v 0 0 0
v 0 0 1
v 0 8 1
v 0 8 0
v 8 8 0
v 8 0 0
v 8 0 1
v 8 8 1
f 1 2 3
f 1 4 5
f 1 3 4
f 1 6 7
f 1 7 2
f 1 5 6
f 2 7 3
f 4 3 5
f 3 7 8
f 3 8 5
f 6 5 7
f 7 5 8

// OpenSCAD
/* Warning, this is a very basic generator with a lot of approximation 
input data : [VQFN, NDC, 8x8x1.0mm, 56, , A, C04-25510A]
generated by com.zoubworld.electronics.cad.model3d.Basic
Date : Sun Feb 15 10:50:49 CET 2026
*/

//body
color("black")
translate([0,0,0])
cube([8.0,8.0,1.0], center=false);
